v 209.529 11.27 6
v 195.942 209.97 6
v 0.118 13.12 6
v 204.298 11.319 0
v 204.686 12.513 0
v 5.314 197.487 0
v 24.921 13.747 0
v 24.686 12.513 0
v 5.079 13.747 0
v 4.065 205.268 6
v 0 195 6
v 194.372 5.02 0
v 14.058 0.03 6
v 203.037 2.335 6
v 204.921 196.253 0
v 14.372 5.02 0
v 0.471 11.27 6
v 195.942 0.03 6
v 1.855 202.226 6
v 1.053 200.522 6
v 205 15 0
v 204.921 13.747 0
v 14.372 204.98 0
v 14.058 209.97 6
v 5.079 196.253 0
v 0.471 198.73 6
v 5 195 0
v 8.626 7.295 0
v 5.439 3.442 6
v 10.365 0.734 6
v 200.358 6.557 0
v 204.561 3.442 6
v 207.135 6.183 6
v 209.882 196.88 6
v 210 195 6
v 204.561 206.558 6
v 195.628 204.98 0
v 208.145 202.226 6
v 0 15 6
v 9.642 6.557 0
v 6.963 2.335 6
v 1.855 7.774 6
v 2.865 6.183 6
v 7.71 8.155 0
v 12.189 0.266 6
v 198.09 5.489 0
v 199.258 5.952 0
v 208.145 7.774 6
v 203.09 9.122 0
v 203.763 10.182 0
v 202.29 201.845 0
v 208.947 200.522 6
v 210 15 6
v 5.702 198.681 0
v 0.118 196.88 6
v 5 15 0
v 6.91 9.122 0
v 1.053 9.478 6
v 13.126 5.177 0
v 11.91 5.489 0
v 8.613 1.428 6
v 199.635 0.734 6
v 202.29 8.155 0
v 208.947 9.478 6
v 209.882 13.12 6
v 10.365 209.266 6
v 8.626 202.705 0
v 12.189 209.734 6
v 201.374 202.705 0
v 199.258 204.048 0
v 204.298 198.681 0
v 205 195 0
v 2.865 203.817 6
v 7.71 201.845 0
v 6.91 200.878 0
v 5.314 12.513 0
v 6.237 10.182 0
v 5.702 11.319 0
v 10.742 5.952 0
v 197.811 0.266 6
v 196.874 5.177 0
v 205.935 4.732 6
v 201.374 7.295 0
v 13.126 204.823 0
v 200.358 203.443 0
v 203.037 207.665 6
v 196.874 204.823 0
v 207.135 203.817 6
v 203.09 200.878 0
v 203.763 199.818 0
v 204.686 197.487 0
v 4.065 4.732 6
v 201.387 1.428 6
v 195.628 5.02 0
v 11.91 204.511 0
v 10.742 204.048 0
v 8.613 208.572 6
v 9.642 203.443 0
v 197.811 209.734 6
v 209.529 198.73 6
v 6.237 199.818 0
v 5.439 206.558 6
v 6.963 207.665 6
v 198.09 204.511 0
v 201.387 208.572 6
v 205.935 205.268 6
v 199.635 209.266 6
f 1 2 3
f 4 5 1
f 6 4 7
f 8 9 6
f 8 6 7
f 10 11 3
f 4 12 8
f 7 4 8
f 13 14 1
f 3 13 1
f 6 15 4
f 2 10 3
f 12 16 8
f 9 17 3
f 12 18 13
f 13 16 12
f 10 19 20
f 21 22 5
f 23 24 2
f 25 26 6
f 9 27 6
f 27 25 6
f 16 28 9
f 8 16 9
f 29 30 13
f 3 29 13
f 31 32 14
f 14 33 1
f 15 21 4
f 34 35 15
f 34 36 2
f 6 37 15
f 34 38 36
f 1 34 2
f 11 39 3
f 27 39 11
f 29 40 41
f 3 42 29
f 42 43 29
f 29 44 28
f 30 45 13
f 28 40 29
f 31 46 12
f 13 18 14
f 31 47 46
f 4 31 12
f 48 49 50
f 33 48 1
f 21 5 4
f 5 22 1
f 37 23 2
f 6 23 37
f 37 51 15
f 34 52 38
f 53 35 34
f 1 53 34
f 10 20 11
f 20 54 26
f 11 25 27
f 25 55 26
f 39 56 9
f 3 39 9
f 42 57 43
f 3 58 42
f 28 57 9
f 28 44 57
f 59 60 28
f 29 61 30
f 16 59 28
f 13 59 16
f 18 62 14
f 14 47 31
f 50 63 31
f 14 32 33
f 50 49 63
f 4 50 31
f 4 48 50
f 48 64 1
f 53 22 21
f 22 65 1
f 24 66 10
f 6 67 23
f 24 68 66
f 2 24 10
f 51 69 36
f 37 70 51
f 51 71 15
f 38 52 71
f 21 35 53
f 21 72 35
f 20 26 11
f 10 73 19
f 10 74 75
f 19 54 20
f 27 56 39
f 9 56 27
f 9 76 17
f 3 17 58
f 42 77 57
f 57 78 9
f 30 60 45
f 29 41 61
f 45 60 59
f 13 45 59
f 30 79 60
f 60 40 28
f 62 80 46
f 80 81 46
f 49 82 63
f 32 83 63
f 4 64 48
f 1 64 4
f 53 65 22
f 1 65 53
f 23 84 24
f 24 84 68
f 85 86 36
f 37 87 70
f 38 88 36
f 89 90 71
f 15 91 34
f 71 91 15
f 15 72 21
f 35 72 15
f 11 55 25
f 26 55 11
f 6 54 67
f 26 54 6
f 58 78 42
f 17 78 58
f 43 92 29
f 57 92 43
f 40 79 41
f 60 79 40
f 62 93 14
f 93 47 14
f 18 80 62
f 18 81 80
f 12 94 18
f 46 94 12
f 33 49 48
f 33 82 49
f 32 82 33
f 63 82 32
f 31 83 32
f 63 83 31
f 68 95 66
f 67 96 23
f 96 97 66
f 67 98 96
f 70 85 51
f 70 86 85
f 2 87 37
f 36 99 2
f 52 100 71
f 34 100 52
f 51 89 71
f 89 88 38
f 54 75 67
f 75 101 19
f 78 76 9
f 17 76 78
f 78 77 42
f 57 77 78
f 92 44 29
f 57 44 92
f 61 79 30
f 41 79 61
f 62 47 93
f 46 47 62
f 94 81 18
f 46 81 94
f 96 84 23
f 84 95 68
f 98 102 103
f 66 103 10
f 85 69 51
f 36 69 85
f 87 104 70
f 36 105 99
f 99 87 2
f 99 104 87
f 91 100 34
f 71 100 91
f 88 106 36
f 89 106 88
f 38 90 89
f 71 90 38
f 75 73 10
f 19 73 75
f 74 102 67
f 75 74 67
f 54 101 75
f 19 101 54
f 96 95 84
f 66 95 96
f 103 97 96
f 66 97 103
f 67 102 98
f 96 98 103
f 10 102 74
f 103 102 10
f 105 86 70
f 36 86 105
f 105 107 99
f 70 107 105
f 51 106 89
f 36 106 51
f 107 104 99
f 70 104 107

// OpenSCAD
// file: ../../vermicomposter.scad
eps=1/128;
$fn=50;

vermicomposter();


module vermicomposter(
    size = [210, 210, 100],
    column_d = 6,
    column_s = 3,  // column separation
    notch = 60,
    notch_var = 7,
    box_radius = 15,
    box_top = 6,
    box_top_r = 13,
    box_bottom = 6,
    box_bottom_r = 10
){
    box(size, box_radius, box_bottom_r, box_top_r, box_top, box_bottom);
    
    columnT = column_d + column_s;
    columnsL = floor((size[0] - 2*box_radius) / columnT);
    offsetL = column_d/2 + (size[0]-(columnsL*(column_d+column_s) - column_s))/2;
    
    column_h = size[2] - box_top - box_bottom;
    z =(size[2] - column_h)/2;
    
    for(a = [0 : columnsL - 1]){
        n = notch + (a%2 ? notch_var : -notch_var);
        x = offsetL + a * columnT;
        
        translate([x,0,z])
            column(column_d, column_h, n);
        translate([x,size[1],z]) 
            rotate(180) column(column_d, column_h, n);
    }
    
    columnsW = floor((size[1] - 2*box_radius) / columnT);
    offsetW = column_d/2 + (size[1]-(columnsW*(column_d+column_s) - column_s))/2;
    for(a = [0 : columnsW - 1]){
        n = notch + (a%2 ? notch_var : -notch_var);
        y =offsetW + a * columnT;
        
        translate([0,y,z]) 
            rotate(-90) column(column_d, column_h, n);
        translate([size[0],y,z]) 
            rotate(90) column(column_d, column_h, n);
    }
    
}

module box(
    size = [200, 100, 50],
    radius = 15,
    bottom_r = 6,
    top_r = 6,
    top = 6,
    bottom = 6
){
    translate([radius,radius,0]){
        hull() 
        for(i = [0 : 1]){
            for(j = [0 : 1]){
                translate([i*(size[0]-2*radius),j*(size[1]-2*radius),0]){
                    translate([0,0,0])cylinder(r1=bottom_r, r2=radius, h=bottom);
                    translate([0,0,bottom]) cylinder(r=radius,h=size[2]-top-bottom);
                    translate([0,0,size[2]-top]) cylinder(r1=radius, r2=top_r, h=top);
                }
            }
        }
    }
}

//!column();

module column(
    d = 10,
    h = 40,
    notch_h = 20
    
){
    scale([1,0.8,1]) difference(){
        union(){
            cylinder(r1=0, r2=d/2, h=d);
            translate([0,0,d]) cylinder(h=h - 2*d, d=d);
            translate([0,0,h-d]) cylinder(r1=d/2, r2=0, h=d);
        }
        if (notch_h >= d){        
            translate([d/2,0,notch_h]) rotate([0,-90,0]) linear_extrude(d) polygon(points = [
                [0,0],
                [0,-d],
                [sqrt(pow(d,2) - pow(d/2,2)),-d/2]
            ]);
        }
    }
}
// main file
use <../../vermicomposter.scad>


vermicomposter(
    size = [210, 210, 5],
    column_d = 0,
    column_s = 3,  // column separation
    notch = 0,
    notch_var = 0,
    box_top = 0
);
